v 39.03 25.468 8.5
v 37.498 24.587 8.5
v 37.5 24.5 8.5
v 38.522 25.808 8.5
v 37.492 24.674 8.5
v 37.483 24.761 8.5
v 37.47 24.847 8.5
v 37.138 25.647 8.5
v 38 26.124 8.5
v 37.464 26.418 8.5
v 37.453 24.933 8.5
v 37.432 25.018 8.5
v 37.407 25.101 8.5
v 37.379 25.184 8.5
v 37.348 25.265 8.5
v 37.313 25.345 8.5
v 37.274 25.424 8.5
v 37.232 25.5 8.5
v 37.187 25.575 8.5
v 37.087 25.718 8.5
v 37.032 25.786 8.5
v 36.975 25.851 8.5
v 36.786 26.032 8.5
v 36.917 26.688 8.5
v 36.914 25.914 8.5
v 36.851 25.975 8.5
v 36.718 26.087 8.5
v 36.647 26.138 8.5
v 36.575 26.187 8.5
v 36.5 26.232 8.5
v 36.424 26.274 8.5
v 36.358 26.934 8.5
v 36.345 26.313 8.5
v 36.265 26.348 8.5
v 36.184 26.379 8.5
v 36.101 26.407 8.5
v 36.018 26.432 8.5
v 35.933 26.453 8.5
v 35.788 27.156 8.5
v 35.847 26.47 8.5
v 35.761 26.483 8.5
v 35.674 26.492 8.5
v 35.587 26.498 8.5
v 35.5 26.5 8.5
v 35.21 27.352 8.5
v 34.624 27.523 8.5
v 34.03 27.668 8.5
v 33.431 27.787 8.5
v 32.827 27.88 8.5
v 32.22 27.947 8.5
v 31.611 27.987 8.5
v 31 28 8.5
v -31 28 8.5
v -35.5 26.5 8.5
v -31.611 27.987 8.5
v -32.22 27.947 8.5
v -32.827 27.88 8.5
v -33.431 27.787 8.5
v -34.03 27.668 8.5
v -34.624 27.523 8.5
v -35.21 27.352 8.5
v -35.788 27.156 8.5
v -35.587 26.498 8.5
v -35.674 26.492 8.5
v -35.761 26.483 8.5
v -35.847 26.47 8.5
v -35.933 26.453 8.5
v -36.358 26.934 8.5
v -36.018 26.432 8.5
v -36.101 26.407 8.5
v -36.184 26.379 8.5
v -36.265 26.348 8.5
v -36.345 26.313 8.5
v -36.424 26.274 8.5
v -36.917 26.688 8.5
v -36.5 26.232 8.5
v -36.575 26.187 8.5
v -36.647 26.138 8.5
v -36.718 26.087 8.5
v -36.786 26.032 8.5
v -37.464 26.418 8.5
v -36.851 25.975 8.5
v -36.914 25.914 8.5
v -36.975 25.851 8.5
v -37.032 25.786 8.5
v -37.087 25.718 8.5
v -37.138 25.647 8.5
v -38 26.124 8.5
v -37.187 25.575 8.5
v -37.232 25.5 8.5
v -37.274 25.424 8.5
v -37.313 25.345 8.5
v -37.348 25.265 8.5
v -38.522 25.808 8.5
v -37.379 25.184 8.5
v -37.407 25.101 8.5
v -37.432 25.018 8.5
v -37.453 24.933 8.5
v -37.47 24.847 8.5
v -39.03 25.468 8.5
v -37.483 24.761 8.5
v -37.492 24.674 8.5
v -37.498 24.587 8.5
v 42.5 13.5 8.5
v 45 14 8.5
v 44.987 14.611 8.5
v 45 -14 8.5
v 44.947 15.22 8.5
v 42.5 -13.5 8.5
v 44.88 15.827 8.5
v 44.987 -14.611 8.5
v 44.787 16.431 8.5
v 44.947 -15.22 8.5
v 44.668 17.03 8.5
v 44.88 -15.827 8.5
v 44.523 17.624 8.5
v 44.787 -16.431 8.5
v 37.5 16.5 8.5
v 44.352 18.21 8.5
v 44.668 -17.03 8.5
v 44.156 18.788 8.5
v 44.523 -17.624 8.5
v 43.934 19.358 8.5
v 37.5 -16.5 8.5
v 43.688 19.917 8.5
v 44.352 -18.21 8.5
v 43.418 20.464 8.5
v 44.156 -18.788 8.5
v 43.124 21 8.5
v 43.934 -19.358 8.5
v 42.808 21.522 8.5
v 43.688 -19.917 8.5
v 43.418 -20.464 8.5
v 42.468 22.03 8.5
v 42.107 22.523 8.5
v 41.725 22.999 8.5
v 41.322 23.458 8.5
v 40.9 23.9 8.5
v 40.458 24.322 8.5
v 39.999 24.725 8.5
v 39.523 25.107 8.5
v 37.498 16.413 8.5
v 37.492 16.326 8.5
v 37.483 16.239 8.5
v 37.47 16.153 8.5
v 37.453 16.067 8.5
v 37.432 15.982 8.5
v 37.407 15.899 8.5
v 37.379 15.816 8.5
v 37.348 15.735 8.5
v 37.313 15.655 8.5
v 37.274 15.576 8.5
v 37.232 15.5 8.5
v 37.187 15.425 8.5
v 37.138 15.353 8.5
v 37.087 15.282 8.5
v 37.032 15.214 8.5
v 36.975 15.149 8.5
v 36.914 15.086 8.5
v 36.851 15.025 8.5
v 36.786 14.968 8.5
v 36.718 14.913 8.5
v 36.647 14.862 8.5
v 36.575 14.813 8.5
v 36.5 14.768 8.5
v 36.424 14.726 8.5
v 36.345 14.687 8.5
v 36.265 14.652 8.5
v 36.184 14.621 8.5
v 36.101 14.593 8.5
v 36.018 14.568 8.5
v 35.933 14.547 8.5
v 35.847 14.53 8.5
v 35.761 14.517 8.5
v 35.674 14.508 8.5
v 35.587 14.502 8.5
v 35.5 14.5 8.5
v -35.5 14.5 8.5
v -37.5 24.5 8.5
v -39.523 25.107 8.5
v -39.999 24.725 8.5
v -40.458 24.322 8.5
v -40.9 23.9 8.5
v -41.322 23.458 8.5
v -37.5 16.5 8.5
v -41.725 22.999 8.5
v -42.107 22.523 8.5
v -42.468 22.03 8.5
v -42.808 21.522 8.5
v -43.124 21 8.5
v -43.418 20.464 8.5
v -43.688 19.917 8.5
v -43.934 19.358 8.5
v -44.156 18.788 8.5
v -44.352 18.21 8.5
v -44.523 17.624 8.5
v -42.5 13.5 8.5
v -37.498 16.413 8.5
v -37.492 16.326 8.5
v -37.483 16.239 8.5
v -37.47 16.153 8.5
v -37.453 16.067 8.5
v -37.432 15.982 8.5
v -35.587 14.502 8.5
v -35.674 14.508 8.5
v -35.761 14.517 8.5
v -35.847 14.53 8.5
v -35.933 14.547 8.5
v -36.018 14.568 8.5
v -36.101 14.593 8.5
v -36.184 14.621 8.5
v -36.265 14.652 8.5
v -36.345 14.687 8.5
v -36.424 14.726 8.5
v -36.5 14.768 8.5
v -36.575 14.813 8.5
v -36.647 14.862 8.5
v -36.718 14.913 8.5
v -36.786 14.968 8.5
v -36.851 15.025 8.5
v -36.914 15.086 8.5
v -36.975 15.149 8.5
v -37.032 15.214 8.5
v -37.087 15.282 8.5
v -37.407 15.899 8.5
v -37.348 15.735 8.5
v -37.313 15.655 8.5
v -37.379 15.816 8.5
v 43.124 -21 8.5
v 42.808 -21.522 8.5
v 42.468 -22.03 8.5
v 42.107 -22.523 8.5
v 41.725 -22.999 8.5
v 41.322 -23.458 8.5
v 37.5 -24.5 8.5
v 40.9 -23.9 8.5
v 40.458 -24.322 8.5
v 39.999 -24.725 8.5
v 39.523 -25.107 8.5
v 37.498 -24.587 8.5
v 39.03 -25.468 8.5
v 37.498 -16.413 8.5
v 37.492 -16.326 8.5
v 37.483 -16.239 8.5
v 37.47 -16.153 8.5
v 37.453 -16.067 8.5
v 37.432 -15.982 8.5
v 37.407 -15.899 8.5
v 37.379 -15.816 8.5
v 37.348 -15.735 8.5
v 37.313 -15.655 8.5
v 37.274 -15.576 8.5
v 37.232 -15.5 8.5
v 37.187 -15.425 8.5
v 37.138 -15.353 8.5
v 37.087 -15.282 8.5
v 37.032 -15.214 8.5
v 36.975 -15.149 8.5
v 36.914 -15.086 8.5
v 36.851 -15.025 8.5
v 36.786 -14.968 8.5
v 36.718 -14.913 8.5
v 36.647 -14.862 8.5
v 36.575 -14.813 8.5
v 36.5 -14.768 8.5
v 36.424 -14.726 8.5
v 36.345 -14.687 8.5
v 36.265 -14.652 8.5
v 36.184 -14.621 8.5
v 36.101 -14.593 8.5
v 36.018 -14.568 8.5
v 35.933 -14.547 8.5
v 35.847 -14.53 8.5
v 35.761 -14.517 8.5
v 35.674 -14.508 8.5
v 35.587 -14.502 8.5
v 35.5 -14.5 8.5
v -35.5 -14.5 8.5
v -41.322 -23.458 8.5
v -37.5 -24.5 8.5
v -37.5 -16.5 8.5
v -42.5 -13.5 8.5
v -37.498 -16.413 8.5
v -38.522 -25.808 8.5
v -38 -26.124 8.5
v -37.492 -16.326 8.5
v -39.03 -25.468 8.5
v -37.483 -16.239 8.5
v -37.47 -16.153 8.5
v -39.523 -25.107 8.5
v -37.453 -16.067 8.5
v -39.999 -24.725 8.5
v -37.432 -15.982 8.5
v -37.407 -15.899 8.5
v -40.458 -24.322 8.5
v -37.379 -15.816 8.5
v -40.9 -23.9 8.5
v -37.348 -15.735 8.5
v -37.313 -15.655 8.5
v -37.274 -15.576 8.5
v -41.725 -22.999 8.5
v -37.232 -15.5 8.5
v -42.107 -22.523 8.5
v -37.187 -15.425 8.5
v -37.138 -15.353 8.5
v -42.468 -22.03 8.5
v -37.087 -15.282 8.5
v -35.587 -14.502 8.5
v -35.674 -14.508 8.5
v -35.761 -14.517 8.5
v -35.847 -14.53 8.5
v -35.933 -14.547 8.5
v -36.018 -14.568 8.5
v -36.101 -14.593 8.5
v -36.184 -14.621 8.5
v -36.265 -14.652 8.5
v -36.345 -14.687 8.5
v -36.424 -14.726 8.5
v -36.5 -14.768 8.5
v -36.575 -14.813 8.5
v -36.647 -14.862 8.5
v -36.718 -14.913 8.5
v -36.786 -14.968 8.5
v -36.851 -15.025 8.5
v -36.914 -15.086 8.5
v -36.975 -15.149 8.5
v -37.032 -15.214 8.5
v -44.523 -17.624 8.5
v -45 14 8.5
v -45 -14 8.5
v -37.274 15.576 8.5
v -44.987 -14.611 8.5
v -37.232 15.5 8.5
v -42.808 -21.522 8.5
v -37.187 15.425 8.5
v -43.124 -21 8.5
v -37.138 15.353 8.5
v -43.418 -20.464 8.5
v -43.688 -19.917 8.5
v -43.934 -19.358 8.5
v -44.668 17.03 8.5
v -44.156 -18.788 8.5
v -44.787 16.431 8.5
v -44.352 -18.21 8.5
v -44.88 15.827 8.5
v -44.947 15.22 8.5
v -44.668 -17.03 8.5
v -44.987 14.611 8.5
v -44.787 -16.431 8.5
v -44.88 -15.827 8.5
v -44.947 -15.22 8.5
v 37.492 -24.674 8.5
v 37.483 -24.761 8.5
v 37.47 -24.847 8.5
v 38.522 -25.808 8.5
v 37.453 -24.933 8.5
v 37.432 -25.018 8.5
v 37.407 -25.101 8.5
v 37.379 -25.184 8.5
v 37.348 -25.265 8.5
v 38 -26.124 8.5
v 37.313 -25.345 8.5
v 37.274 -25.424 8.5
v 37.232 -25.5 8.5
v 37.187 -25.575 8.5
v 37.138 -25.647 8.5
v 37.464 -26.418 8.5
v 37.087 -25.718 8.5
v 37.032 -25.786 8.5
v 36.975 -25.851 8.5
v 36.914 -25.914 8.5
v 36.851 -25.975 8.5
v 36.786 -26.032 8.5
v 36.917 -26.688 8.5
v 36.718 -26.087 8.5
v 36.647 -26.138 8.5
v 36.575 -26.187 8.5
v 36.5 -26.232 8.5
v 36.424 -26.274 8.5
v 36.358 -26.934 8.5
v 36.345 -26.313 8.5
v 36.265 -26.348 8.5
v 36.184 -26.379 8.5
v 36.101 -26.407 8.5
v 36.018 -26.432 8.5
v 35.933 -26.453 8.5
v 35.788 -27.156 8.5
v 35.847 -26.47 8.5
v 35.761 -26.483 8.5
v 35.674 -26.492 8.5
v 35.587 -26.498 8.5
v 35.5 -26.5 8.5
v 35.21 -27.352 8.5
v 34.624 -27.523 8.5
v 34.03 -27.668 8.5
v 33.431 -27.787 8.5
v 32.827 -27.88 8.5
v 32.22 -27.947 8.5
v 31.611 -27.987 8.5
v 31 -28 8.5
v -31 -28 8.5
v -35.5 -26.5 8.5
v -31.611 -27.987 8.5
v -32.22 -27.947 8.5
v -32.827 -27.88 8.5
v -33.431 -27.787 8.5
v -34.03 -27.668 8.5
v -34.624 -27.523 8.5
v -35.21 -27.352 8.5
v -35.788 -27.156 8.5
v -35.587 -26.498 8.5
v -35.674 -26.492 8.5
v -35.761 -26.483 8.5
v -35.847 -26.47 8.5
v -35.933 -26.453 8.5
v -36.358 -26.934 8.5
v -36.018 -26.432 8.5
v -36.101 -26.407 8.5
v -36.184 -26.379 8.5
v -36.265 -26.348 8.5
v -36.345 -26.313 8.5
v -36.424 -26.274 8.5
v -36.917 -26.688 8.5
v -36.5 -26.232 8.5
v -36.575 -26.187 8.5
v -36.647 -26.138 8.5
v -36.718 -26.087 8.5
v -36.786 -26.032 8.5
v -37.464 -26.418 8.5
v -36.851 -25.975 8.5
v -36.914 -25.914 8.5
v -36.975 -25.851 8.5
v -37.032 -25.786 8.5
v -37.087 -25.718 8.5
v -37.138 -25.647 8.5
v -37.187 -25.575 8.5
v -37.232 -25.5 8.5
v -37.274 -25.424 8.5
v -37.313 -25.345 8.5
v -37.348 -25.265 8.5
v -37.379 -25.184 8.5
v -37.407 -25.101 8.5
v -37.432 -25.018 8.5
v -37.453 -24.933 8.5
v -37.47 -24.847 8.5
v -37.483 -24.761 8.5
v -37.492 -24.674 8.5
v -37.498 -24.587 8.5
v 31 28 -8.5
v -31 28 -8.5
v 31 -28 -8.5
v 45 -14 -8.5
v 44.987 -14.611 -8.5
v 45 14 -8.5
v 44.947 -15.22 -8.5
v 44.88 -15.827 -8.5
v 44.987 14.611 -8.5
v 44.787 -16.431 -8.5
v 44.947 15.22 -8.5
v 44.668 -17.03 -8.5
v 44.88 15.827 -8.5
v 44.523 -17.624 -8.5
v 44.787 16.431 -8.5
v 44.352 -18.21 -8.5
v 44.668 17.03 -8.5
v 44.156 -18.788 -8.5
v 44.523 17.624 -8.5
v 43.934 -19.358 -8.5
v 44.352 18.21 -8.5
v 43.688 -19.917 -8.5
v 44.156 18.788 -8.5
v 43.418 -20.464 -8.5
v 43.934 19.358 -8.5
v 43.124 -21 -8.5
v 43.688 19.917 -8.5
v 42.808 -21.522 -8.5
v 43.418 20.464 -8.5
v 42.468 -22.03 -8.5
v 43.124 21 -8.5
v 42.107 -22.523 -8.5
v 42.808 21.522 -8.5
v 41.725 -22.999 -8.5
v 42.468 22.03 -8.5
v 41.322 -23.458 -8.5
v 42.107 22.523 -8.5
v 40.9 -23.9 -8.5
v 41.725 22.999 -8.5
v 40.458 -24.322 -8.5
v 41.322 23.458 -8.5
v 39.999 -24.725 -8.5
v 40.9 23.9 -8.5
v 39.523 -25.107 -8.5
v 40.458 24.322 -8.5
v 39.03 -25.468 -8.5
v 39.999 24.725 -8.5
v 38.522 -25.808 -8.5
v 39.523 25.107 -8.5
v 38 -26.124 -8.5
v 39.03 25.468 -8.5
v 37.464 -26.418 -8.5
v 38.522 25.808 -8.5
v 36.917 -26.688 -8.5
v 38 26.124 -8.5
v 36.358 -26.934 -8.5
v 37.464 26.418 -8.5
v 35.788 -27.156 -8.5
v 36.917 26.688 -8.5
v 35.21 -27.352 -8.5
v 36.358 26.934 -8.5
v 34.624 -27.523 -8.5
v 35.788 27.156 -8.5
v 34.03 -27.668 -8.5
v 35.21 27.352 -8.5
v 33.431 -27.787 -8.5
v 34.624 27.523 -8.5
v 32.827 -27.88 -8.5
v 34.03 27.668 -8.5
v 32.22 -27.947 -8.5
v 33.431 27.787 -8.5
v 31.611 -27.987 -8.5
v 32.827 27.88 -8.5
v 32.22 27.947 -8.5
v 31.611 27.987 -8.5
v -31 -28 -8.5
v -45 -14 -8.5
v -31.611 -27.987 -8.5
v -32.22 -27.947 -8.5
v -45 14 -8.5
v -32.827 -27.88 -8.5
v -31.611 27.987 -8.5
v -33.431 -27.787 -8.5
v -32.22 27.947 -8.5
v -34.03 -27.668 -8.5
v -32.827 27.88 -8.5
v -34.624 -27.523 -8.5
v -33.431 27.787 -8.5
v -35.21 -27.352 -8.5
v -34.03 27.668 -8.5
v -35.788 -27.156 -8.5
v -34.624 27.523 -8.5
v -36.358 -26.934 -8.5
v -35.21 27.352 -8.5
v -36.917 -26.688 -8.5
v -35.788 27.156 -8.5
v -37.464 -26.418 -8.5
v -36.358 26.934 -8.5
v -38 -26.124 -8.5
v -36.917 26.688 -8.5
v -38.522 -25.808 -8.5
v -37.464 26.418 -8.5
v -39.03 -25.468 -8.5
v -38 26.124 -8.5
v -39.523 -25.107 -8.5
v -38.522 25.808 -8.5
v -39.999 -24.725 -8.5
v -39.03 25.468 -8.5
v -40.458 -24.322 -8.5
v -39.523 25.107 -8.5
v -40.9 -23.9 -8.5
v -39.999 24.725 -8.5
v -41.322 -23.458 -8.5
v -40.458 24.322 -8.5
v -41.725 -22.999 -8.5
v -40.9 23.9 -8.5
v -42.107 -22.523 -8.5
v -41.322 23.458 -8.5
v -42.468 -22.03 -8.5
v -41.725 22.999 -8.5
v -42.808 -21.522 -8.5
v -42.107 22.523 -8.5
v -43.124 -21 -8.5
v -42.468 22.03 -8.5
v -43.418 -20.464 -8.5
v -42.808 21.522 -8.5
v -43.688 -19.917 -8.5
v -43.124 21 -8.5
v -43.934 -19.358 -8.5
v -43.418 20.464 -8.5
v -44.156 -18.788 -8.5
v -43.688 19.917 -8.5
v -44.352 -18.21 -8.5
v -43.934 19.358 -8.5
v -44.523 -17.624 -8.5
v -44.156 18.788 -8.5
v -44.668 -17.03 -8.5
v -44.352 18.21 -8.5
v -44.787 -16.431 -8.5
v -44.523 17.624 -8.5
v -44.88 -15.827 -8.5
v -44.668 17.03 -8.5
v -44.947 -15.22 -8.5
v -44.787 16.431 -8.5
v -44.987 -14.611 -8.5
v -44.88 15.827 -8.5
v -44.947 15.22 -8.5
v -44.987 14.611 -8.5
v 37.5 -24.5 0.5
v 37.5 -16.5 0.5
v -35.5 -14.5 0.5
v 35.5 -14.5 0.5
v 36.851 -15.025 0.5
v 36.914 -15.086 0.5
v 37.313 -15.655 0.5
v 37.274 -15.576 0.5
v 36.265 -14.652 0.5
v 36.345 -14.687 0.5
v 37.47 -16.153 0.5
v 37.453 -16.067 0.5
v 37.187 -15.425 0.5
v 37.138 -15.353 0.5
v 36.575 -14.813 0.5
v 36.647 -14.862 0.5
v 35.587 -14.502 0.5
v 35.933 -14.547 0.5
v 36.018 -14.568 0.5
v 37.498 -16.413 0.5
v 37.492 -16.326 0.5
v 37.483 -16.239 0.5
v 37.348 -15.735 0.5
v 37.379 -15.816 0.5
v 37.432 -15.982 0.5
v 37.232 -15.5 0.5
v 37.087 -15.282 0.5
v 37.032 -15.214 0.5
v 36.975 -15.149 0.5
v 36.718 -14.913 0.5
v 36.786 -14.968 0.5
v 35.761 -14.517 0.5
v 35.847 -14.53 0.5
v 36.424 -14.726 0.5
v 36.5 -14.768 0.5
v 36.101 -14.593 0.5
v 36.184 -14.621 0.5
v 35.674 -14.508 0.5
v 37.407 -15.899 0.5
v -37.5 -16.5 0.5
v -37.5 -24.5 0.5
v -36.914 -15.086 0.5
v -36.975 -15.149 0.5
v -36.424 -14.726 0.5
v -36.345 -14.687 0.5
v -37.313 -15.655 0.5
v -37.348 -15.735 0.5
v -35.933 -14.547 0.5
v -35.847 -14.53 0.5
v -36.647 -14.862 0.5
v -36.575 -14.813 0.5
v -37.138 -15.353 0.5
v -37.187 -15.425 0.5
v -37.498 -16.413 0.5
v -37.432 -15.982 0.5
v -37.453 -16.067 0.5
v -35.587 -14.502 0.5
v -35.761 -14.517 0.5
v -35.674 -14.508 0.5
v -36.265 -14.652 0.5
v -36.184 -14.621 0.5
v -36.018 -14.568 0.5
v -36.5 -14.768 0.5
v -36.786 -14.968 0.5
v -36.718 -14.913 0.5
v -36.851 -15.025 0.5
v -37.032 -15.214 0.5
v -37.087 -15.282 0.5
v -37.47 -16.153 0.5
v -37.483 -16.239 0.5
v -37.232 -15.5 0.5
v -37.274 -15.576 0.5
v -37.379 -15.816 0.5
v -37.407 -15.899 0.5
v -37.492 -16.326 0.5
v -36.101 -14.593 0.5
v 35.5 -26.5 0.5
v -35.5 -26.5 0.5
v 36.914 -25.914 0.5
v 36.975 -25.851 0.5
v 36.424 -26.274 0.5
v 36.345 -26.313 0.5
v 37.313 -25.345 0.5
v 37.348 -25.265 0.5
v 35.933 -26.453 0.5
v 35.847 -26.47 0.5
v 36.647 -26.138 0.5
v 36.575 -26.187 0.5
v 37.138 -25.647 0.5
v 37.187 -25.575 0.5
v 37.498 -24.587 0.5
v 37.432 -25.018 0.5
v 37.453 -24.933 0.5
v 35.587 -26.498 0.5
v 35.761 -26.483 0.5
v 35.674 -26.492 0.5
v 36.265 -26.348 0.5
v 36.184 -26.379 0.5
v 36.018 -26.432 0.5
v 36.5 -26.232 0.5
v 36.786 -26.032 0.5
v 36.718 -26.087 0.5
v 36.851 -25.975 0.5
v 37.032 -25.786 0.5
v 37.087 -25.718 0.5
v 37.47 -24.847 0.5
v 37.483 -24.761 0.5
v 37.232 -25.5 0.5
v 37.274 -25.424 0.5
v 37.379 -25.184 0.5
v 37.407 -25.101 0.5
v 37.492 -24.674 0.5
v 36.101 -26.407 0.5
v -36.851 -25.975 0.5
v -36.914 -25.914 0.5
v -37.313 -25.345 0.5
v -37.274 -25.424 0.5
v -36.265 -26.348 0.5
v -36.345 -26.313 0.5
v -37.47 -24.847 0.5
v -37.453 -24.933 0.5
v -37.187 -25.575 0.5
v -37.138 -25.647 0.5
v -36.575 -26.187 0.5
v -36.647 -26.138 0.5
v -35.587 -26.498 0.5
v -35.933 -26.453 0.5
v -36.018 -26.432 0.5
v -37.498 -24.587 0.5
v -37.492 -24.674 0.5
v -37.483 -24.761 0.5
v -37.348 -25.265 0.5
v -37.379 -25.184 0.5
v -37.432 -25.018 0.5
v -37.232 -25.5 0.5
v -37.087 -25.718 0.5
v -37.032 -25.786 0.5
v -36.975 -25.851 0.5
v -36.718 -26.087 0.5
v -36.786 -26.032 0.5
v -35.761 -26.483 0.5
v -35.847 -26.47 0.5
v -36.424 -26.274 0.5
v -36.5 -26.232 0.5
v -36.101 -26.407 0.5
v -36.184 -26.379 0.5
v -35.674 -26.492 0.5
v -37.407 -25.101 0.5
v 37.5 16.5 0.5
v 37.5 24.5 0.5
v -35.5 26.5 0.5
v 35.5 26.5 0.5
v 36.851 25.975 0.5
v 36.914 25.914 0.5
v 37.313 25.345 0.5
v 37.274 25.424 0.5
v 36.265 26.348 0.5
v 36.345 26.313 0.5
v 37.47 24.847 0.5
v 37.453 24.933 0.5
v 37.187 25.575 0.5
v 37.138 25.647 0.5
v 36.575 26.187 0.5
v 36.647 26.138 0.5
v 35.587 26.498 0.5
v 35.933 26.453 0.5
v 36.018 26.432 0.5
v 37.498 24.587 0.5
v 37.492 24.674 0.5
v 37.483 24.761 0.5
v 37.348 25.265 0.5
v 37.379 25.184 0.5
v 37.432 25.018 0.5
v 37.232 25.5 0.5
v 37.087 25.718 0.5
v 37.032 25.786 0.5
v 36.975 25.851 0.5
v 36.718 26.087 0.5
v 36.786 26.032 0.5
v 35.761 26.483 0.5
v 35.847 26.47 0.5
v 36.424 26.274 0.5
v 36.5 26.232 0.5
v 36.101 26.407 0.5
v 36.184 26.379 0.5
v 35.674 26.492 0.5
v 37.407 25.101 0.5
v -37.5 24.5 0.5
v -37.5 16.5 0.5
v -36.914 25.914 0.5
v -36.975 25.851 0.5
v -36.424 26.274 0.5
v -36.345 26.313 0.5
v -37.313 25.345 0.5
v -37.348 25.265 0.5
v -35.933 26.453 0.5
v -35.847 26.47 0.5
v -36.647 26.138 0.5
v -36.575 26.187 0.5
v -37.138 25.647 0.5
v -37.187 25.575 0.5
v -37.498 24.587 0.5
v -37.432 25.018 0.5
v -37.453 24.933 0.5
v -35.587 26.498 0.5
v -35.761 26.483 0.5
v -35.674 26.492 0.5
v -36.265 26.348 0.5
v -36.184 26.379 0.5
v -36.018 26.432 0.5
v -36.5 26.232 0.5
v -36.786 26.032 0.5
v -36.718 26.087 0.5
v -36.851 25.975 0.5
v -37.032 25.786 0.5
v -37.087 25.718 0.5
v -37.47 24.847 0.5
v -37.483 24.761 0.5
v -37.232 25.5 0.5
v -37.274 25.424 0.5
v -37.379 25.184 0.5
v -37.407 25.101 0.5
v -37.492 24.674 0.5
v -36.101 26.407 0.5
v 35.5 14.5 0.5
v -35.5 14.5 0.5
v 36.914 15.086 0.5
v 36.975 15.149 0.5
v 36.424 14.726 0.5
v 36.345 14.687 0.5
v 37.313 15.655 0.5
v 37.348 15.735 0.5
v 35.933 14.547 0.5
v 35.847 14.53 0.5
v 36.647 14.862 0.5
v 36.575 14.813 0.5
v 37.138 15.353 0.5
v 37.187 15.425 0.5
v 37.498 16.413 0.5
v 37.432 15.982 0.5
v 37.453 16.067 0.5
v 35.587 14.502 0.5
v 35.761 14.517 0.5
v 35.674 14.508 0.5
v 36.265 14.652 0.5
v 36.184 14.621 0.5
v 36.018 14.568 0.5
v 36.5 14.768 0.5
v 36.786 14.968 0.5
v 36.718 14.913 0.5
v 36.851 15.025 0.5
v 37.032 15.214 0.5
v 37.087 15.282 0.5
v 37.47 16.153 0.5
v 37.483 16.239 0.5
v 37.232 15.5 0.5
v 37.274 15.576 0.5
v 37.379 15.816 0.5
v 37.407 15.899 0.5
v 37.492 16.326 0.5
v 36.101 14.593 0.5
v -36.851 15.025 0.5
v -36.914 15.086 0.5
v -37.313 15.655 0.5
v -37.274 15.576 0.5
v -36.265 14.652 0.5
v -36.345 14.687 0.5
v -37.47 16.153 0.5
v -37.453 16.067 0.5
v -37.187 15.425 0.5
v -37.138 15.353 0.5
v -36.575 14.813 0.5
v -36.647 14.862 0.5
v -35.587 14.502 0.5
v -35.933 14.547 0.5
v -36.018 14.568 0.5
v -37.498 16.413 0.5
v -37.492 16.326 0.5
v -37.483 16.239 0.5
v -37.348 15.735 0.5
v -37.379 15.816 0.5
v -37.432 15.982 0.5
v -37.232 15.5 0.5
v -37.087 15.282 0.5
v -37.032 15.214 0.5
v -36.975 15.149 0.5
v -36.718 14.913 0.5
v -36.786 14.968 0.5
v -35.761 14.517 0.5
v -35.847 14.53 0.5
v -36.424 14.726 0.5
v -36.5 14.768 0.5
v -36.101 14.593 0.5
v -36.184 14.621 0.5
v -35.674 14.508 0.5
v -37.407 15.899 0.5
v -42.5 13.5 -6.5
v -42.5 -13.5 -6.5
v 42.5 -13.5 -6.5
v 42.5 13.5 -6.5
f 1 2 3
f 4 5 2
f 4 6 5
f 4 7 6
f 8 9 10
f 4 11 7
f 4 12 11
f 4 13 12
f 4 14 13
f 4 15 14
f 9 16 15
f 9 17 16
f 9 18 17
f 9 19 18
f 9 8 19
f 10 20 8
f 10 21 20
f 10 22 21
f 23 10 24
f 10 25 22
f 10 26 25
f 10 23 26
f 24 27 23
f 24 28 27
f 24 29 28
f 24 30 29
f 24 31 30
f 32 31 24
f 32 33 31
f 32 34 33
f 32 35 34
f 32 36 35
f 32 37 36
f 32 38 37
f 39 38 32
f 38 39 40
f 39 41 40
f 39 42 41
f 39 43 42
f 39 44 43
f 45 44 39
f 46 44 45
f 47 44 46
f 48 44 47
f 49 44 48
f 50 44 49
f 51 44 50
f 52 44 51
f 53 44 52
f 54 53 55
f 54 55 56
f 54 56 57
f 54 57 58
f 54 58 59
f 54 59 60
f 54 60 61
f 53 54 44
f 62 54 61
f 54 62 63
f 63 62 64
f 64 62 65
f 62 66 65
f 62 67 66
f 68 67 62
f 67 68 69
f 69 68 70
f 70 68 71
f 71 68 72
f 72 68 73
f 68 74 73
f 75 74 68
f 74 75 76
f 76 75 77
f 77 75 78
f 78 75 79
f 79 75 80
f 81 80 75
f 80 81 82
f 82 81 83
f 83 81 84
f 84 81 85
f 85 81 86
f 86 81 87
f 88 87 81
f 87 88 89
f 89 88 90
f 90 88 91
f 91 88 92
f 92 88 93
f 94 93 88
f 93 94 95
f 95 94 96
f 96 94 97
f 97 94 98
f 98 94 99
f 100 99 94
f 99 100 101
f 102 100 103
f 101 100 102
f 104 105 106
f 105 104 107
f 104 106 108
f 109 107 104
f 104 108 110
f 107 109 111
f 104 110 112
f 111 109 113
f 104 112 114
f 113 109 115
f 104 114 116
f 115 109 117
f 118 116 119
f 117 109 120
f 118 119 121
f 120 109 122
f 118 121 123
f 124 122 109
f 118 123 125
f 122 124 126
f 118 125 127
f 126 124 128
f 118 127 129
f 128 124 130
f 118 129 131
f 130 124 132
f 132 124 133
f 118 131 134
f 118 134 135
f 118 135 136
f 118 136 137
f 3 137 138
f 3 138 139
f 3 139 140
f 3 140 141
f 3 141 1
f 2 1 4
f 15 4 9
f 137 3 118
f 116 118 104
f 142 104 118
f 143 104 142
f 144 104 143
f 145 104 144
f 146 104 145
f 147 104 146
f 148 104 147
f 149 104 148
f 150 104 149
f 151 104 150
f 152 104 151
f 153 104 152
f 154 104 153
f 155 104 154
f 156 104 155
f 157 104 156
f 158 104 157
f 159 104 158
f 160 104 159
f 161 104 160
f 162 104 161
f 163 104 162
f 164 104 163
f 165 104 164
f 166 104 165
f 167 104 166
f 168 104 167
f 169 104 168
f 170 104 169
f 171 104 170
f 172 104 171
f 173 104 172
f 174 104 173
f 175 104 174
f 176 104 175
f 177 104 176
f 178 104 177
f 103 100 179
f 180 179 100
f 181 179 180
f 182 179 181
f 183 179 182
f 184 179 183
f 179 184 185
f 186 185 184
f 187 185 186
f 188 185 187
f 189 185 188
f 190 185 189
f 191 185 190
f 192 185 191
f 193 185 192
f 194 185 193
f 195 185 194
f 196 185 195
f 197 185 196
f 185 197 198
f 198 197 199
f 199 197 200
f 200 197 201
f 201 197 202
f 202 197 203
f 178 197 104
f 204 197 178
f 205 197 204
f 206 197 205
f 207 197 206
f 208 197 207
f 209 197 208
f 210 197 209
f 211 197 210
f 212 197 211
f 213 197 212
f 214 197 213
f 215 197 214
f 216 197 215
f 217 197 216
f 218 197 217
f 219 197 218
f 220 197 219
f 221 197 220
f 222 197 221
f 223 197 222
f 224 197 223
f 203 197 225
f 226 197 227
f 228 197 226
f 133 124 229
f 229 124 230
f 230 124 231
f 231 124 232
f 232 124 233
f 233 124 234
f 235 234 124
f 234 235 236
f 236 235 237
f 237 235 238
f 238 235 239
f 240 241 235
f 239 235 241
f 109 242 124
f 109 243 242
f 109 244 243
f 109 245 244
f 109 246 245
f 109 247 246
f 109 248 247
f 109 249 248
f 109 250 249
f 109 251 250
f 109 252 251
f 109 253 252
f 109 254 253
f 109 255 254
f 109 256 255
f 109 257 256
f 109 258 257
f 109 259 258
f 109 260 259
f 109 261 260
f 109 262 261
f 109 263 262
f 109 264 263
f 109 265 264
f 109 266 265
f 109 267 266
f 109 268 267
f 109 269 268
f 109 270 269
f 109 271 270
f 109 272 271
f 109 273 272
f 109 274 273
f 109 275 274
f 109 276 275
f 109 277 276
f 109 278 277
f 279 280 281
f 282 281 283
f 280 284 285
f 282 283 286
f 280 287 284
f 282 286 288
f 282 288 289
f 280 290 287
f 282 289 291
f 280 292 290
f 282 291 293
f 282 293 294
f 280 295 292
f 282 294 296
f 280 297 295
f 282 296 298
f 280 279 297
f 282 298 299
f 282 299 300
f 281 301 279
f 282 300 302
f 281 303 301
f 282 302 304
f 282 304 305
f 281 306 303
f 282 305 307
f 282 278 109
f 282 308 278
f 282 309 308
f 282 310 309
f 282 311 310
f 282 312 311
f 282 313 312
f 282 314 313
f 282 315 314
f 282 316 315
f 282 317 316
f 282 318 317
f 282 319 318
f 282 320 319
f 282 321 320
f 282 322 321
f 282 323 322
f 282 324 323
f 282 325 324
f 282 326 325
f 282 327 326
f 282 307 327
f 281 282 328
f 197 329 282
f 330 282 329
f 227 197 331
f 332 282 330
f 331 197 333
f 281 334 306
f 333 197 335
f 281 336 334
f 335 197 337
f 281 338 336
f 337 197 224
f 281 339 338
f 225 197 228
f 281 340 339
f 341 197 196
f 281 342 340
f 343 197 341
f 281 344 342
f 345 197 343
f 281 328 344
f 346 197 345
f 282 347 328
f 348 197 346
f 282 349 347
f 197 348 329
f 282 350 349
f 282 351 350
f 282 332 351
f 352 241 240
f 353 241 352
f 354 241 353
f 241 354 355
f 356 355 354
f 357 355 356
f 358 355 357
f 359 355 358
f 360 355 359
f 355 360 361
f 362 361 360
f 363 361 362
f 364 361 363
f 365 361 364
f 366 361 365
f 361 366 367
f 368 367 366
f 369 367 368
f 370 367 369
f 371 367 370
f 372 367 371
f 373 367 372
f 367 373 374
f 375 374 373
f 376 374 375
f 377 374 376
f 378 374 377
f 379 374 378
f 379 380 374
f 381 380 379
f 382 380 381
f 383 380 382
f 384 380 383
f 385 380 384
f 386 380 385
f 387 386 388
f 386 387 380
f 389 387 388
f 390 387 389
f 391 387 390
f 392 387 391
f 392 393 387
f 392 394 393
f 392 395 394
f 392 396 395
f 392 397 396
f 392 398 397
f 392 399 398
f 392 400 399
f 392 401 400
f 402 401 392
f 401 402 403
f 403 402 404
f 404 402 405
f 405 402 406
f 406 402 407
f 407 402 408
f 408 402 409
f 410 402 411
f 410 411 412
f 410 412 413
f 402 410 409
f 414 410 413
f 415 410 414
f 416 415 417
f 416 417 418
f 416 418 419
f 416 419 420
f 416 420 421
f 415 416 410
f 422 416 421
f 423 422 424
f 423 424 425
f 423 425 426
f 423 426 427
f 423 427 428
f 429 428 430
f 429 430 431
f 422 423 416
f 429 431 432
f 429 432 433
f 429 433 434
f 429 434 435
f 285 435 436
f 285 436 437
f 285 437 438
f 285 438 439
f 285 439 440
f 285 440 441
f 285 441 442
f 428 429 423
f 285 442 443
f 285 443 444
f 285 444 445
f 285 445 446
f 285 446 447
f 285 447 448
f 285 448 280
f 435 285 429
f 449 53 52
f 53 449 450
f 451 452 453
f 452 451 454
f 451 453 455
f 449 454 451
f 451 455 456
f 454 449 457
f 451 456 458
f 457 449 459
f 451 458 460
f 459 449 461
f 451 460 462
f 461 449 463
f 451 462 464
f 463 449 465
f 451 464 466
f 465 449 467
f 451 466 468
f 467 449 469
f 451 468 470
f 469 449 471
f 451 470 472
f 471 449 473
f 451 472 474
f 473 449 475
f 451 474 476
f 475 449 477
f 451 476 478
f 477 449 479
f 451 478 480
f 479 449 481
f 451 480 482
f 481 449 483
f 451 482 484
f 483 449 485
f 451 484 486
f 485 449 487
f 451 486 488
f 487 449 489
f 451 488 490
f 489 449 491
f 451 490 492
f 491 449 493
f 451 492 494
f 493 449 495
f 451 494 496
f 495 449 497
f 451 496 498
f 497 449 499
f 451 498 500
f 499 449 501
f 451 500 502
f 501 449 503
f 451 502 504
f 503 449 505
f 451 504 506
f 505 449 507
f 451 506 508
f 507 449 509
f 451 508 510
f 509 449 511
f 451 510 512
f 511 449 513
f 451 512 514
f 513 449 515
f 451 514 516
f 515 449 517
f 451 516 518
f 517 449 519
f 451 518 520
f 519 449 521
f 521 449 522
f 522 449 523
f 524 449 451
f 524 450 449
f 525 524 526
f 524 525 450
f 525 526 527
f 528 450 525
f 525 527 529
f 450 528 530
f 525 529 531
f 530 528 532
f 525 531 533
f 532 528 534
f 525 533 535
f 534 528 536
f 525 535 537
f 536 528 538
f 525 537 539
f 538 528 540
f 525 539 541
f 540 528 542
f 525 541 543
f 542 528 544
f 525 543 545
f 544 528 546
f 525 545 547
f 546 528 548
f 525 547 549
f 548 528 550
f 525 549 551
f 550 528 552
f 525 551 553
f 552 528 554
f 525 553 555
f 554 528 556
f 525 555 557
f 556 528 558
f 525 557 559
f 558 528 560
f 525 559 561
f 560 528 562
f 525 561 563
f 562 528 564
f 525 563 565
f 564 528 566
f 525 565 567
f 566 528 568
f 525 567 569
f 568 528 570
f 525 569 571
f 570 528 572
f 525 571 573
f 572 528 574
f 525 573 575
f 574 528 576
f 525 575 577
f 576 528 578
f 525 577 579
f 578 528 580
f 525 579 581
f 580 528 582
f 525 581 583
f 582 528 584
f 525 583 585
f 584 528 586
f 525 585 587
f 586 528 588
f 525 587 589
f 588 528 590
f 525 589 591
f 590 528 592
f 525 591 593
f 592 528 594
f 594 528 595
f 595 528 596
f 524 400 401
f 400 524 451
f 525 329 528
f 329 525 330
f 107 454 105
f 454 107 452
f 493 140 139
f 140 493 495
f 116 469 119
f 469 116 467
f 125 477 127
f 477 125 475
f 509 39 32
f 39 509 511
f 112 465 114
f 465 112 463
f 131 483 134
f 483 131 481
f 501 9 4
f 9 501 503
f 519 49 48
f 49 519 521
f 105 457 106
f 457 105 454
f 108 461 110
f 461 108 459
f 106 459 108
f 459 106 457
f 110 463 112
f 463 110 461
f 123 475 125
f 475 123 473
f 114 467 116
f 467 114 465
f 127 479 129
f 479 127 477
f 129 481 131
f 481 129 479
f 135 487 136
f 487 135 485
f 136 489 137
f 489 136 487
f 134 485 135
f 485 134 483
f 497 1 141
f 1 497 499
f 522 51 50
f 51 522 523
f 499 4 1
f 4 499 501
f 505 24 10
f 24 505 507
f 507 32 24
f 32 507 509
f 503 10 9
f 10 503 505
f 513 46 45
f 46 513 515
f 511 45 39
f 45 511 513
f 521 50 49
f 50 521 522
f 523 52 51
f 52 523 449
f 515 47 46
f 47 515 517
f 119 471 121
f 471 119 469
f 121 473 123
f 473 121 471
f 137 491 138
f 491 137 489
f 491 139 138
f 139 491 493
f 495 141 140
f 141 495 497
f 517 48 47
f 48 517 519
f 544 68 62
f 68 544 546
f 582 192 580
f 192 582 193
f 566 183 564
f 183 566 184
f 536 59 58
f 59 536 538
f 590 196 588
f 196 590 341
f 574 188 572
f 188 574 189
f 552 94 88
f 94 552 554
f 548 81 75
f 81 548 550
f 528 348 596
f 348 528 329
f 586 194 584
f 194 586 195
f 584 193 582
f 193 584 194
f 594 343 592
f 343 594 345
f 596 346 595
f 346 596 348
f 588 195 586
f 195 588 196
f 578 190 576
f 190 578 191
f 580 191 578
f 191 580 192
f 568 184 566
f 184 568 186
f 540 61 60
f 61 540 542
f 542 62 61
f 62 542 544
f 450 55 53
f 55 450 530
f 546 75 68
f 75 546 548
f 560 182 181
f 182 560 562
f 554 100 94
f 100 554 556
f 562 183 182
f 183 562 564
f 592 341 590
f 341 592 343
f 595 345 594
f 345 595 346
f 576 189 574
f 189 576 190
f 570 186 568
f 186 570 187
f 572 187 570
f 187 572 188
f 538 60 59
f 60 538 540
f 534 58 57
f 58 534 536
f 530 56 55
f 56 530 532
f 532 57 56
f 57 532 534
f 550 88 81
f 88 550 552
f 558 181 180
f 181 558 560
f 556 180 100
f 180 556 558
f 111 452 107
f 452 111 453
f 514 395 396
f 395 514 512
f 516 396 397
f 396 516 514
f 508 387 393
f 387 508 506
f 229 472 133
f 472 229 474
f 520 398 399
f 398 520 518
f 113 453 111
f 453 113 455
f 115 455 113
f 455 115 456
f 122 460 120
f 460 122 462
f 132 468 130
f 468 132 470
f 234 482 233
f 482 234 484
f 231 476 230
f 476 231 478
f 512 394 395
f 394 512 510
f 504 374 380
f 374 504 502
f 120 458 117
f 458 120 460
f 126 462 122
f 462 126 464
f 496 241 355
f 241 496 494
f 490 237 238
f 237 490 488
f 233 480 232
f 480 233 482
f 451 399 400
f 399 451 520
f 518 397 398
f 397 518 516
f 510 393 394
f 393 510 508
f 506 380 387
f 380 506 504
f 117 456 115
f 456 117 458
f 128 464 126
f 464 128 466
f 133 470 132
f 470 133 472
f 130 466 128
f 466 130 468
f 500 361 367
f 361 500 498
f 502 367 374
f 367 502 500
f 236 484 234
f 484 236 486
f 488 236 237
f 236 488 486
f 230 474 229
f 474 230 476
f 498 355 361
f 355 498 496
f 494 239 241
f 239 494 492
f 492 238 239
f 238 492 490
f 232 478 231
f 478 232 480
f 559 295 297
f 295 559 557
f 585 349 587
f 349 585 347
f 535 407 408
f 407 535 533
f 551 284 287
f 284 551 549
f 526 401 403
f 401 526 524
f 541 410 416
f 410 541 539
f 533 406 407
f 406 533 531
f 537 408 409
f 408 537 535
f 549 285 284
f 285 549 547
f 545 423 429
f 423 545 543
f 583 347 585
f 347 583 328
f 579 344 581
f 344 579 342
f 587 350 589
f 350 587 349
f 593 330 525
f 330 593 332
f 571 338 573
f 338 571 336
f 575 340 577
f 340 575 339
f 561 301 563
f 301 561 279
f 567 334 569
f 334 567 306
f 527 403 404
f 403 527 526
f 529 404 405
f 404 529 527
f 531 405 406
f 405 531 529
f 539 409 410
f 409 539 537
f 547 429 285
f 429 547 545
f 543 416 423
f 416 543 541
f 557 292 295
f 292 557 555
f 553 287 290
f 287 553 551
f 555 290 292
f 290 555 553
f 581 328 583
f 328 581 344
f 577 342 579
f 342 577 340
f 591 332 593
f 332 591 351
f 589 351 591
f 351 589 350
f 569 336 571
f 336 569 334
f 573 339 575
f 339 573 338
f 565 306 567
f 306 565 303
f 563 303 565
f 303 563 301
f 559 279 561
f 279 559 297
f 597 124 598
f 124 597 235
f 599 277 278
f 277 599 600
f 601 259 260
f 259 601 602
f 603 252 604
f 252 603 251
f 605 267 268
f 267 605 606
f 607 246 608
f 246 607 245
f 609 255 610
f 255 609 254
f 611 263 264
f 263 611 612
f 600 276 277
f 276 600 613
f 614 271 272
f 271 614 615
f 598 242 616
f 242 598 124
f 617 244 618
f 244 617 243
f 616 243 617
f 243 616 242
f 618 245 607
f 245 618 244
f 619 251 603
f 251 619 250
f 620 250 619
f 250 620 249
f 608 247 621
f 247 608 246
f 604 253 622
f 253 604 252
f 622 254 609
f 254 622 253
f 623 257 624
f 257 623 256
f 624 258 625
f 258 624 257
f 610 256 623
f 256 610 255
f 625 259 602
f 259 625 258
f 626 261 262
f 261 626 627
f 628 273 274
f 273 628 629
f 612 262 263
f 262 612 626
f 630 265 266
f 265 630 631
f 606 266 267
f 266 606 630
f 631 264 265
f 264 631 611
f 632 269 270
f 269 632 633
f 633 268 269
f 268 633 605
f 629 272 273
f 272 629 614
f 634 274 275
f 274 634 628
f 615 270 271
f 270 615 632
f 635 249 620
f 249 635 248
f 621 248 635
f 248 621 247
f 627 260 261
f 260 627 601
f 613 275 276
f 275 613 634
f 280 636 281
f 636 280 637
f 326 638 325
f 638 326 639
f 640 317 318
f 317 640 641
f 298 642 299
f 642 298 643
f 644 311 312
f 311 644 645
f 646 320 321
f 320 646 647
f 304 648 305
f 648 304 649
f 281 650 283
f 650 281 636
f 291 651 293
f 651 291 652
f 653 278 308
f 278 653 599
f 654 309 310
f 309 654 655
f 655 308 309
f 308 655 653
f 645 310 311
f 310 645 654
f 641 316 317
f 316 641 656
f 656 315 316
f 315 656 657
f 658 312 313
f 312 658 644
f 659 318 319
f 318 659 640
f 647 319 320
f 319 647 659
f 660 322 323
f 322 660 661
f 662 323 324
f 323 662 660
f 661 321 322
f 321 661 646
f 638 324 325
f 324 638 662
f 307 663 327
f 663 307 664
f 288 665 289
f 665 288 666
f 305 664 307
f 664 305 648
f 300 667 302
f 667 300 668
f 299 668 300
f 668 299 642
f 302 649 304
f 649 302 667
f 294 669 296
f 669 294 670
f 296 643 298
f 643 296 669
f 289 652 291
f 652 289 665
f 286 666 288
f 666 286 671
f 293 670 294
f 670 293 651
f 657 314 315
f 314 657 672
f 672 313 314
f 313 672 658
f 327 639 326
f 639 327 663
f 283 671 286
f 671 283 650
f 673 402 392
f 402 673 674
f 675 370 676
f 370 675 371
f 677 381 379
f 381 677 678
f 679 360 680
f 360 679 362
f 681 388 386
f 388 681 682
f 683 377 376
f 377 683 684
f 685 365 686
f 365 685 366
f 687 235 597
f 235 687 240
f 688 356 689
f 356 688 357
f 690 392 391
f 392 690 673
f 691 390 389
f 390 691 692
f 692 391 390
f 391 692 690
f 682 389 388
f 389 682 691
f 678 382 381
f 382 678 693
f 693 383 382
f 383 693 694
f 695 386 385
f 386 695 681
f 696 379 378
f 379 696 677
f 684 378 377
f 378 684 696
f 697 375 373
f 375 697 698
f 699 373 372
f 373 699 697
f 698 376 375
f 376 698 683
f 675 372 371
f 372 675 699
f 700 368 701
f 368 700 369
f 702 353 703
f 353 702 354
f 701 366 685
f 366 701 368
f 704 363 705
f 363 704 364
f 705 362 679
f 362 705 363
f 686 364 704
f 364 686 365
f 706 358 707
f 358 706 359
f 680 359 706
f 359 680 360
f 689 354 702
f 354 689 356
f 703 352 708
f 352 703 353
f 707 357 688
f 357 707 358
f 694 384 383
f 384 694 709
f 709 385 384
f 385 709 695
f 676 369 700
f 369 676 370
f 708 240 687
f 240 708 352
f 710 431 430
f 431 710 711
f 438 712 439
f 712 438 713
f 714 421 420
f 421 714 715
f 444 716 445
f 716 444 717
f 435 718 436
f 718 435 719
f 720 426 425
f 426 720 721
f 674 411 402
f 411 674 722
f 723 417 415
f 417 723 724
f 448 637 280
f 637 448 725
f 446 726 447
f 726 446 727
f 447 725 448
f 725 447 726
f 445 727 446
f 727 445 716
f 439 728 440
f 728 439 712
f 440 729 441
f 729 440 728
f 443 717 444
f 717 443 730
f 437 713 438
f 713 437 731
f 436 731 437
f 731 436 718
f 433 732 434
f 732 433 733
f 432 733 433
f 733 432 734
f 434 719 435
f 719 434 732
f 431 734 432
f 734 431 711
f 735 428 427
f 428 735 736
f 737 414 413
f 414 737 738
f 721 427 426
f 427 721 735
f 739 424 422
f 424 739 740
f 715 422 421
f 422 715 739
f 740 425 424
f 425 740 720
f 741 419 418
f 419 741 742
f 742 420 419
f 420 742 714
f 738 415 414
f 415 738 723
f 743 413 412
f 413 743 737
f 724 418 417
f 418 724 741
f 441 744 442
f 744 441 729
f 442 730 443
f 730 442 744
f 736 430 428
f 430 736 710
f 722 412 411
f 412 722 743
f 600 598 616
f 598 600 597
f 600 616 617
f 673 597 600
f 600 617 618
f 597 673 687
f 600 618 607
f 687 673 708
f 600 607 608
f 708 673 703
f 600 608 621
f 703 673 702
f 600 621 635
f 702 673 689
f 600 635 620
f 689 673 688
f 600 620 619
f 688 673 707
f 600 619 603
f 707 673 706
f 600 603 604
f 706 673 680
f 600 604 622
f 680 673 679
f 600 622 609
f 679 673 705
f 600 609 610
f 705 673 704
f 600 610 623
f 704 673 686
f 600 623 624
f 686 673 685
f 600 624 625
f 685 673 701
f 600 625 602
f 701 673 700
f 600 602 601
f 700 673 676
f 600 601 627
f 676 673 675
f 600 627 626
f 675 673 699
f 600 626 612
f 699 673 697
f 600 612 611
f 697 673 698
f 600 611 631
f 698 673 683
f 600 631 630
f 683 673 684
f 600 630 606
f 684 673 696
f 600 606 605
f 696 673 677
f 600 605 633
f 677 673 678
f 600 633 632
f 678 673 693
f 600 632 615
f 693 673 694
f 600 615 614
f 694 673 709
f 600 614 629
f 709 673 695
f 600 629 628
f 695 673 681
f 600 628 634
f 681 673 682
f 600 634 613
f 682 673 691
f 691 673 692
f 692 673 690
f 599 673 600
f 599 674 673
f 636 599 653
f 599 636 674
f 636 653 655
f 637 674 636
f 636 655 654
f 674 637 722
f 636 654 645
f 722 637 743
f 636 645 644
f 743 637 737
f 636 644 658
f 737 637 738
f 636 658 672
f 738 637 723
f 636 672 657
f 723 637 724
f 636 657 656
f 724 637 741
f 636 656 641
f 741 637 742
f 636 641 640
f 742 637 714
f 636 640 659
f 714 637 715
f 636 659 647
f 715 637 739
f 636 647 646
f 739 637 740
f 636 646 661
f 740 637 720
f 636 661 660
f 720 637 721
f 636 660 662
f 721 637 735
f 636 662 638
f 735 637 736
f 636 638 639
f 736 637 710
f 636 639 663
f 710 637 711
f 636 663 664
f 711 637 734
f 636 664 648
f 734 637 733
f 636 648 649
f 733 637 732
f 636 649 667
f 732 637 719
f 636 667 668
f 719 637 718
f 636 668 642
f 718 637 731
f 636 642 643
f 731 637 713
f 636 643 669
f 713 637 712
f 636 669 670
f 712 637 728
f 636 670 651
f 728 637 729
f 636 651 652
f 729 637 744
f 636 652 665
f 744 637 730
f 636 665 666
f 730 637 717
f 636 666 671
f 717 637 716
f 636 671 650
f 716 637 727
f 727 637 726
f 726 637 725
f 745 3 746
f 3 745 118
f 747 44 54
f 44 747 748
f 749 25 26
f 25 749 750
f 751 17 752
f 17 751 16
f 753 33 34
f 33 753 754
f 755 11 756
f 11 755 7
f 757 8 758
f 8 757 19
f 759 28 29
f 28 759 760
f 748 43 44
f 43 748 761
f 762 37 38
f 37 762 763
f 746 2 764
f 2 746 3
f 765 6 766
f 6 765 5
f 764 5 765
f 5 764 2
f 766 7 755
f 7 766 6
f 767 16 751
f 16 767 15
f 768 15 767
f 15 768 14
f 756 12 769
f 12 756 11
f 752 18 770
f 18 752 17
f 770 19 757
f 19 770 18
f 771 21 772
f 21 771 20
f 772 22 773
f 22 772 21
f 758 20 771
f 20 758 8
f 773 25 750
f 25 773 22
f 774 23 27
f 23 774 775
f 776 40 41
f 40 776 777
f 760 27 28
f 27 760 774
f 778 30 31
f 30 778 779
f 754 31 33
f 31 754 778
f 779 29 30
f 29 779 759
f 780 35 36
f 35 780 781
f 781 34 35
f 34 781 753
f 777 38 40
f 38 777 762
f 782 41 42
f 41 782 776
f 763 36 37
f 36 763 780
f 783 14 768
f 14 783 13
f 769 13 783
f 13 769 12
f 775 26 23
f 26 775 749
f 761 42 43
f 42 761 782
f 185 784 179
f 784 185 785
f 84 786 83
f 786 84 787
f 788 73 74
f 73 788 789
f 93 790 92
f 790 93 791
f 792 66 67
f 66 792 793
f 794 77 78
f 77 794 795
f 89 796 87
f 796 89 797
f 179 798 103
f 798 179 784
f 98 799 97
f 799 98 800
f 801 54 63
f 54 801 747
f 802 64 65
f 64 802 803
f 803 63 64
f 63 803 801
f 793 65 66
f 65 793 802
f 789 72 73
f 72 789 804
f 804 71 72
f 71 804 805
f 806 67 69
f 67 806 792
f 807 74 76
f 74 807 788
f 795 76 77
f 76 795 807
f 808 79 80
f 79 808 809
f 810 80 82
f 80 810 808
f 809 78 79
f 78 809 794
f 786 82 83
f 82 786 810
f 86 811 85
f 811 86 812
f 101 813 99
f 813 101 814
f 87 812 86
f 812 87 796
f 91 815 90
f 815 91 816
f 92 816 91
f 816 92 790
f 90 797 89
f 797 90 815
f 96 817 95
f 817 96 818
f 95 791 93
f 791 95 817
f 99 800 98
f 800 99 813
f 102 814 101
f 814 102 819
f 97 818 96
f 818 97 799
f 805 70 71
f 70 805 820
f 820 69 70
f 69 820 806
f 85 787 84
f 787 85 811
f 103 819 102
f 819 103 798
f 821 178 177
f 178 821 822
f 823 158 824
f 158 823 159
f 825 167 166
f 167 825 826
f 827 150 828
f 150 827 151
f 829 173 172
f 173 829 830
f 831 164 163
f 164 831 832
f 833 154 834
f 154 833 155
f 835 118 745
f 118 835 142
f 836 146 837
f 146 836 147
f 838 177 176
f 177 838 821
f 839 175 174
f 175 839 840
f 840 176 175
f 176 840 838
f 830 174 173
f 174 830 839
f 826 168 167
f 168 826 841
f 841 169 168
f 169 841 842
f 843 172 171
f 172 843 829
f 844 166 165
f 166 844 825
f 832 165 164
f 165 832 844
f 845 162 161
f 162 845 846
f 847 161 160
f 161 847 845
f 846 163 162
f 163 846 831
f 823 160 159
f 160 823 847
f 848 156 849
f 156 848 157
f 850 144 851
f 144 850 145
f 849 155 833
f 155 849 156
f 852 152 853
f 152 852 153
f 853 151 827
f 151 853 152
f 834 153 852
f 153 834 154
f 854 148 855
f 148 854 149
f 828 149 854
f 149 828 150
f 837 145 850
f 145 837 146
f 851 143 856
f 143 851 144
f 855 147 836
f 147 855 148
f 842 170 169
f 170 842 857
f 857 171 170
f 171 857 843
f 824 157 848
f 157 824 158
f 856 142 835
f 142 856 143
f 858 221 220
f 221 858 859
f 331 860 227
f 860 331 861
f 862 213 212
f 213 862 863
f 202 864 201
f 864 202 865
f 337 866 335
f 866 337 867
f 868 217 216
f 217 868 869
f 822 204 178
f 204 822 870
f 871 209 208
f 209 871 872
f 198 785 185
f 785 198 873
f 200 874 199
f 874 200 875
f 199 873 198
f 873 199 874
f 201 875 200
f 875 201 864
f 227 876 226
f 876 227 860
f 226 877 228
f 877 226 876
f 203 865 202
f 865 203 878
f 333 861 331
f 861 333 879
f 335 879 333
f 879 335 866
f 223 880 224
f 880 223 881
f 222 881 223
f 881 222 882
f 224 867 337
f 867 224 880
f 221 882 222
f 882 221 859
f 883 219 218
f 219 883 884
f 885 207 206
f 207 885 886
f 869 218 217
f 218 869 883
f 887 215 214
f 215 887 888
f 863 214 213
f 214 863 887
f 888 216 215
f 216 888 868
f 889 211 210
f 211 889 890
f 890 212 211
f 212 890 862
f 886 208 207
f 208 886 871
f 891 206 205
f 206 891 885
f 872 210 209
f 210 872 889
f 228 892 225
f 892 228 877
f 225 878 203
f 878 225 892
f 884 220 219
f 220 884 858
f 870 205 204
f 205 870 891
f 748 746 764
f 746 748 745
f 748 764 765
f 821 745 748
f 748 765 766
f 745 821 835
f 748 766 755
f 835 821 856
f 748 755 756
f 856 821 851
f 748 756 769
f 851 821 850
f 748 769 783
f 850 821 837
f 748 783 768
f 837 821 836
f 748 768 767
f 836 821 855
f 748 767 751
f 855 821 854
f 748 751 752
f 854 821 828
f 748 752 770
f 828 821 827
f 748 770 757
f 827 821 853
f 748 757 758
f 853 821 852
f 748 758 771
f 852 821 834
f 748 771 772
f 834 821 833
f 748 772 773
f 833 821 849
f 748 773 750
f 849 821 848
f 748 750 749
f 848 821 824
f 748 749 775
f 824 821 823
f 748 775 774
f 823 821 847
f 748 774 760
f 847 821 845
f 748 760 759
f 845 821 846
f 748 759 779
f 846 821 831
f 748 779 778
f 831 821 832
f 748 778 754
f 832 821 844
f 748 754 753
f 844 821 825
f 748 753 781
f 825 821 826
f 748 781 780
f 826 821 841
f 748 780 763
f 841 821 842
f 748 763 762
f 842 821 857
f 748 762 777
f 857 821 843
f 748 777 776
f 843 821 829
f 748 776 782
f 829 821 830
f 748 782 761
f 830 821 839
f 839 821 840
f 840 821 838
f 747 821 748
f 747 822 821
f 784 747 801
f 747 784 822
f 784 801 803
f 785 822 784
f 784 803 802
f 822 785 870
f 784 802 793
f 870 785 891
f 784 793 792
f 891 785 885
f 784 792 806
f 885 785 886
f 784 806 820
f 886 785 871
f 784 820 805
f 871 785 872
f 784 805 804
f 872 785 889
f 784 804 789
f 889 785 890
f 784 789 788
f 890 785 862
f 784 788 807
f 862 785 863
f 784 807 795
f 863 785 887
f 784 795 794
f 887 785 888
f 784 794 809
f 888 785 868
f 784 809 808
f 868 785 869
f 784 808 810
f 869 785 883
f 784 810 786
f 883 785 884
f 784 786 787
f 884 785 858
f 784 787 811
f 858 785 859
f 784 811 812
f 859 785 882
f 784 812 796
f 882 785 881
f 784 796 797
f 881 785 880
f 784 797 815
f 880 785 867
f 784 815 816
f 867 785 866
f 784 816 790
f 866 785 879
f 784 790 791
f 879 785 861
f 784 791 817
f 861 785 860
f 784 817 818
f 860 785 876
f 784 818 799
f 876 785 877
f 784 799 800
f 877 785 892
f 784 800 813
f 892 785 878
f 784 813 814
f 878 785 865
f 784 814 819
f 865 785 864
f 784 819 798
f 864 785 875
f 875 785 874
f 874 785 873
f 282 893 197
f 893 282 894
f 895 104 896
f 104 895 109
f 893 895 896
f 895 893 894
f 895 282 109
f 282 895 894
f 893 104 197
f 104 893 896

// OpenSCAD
// Altoid tin base inner dimensions
tinx = 90;
tiny = 56;
tinz = 17;
tincorner = 14;

bicx = 85; // real = 82
bicy = 27; // real = 25
bicz = 15; // real = 15

slotx = 75;
sloty = 12;
slotz = 8;

$fn = 144;

corner=2;
wall=1;

module tin() {
    cube([tinx - (2*tincorner), tiny, tinz], center=true);
    cube([tinx, tiny - (2*tincorner), tinz], center=true);
    translate([(tinx-(2*tincorner))/2, (tiny-(2*tincorner))/2, 0]){
        cylinder(h=tinz, r=tincorner, center=true);
    }
    translate([-(tinx-(2*tincorner))/2, (tiny-(2*tincorner))/2, 0]){
        cylinder(h=tinz, r=tincorner, center=true);
    }
    translate([(tinx-(2*tincorner))/2, -(tiny-(2*tincorner))/2, 0]){
        cylinder(h=tinz, r=tincorner, center=true);
    }
    translate([-(tinx-(tincorner*2))/2, -(tiny-(tincorner*2))/2, 0]){
        cylinder(h=tinz, r=tincorner, center=true);
    }
}

module bic() {
    cube([bicx, bicy, bicz], center=true);
}
module slot() {
    difference(){
        cube([slotx, sloty, slotz], center=true);
        translate([(slotx/2)-corner, (sloty/2)-corner, 0]) {
            difference(){
                translate([corner/2,corner/2,0]) {
                    cube([corner, corner, 2*slotz], center=true);
                }
                cylinder(h=2*slotz, r=corner, center=true);
            }
        }
        translate([-((slotx/2)-corner), (sloty/2)-corner, 0]) {
            rotate([0,0,90]){
                difference(){
                    translate([corner/2,corner/2,0]) {
                        cube([corner, corner, 2*slotz], center=true);
                    }
                    cylinder(h=2*slotz, r=corner, center=true);
                }
            }
        }
        translate([(slotx/2)-corner, -((sloty/2)-corner), 0]) {
            rotate([0,0,270]){
                difference(){
                    translate([corner/2,corner/2,0]) {
                        cube([corner, corner, 2*slotz], center=true);
                    }
                    cylinder(h=2*slotz, r=corner, center=true);
                }
            }
        }
        translate([-((slotx/2)-corner), -((sloty/2)-corner), 0]) {
            rotate([0,0,180]){
                difference(){
                    translate([corner/2,corner/2,0]) {
                        cube([corner, corner, 2*slotz], center=true);
                    }
                    cylinder(h=2*slotz, r=corner, center=true);
                }
            }
        }
    }
}



difference() {
    tin();
    translate([0,0,(tinz-bicz)/2]) {
        bic();
    }
    translate([0, -((sloty+bicy)/2+wall), (tinz-slotz)/2]) {
        slot();
    }
    translate([0, ((sloty+bicy)/2+wall), (tinz-slotz)/2]) {
        slot();
    }
}
